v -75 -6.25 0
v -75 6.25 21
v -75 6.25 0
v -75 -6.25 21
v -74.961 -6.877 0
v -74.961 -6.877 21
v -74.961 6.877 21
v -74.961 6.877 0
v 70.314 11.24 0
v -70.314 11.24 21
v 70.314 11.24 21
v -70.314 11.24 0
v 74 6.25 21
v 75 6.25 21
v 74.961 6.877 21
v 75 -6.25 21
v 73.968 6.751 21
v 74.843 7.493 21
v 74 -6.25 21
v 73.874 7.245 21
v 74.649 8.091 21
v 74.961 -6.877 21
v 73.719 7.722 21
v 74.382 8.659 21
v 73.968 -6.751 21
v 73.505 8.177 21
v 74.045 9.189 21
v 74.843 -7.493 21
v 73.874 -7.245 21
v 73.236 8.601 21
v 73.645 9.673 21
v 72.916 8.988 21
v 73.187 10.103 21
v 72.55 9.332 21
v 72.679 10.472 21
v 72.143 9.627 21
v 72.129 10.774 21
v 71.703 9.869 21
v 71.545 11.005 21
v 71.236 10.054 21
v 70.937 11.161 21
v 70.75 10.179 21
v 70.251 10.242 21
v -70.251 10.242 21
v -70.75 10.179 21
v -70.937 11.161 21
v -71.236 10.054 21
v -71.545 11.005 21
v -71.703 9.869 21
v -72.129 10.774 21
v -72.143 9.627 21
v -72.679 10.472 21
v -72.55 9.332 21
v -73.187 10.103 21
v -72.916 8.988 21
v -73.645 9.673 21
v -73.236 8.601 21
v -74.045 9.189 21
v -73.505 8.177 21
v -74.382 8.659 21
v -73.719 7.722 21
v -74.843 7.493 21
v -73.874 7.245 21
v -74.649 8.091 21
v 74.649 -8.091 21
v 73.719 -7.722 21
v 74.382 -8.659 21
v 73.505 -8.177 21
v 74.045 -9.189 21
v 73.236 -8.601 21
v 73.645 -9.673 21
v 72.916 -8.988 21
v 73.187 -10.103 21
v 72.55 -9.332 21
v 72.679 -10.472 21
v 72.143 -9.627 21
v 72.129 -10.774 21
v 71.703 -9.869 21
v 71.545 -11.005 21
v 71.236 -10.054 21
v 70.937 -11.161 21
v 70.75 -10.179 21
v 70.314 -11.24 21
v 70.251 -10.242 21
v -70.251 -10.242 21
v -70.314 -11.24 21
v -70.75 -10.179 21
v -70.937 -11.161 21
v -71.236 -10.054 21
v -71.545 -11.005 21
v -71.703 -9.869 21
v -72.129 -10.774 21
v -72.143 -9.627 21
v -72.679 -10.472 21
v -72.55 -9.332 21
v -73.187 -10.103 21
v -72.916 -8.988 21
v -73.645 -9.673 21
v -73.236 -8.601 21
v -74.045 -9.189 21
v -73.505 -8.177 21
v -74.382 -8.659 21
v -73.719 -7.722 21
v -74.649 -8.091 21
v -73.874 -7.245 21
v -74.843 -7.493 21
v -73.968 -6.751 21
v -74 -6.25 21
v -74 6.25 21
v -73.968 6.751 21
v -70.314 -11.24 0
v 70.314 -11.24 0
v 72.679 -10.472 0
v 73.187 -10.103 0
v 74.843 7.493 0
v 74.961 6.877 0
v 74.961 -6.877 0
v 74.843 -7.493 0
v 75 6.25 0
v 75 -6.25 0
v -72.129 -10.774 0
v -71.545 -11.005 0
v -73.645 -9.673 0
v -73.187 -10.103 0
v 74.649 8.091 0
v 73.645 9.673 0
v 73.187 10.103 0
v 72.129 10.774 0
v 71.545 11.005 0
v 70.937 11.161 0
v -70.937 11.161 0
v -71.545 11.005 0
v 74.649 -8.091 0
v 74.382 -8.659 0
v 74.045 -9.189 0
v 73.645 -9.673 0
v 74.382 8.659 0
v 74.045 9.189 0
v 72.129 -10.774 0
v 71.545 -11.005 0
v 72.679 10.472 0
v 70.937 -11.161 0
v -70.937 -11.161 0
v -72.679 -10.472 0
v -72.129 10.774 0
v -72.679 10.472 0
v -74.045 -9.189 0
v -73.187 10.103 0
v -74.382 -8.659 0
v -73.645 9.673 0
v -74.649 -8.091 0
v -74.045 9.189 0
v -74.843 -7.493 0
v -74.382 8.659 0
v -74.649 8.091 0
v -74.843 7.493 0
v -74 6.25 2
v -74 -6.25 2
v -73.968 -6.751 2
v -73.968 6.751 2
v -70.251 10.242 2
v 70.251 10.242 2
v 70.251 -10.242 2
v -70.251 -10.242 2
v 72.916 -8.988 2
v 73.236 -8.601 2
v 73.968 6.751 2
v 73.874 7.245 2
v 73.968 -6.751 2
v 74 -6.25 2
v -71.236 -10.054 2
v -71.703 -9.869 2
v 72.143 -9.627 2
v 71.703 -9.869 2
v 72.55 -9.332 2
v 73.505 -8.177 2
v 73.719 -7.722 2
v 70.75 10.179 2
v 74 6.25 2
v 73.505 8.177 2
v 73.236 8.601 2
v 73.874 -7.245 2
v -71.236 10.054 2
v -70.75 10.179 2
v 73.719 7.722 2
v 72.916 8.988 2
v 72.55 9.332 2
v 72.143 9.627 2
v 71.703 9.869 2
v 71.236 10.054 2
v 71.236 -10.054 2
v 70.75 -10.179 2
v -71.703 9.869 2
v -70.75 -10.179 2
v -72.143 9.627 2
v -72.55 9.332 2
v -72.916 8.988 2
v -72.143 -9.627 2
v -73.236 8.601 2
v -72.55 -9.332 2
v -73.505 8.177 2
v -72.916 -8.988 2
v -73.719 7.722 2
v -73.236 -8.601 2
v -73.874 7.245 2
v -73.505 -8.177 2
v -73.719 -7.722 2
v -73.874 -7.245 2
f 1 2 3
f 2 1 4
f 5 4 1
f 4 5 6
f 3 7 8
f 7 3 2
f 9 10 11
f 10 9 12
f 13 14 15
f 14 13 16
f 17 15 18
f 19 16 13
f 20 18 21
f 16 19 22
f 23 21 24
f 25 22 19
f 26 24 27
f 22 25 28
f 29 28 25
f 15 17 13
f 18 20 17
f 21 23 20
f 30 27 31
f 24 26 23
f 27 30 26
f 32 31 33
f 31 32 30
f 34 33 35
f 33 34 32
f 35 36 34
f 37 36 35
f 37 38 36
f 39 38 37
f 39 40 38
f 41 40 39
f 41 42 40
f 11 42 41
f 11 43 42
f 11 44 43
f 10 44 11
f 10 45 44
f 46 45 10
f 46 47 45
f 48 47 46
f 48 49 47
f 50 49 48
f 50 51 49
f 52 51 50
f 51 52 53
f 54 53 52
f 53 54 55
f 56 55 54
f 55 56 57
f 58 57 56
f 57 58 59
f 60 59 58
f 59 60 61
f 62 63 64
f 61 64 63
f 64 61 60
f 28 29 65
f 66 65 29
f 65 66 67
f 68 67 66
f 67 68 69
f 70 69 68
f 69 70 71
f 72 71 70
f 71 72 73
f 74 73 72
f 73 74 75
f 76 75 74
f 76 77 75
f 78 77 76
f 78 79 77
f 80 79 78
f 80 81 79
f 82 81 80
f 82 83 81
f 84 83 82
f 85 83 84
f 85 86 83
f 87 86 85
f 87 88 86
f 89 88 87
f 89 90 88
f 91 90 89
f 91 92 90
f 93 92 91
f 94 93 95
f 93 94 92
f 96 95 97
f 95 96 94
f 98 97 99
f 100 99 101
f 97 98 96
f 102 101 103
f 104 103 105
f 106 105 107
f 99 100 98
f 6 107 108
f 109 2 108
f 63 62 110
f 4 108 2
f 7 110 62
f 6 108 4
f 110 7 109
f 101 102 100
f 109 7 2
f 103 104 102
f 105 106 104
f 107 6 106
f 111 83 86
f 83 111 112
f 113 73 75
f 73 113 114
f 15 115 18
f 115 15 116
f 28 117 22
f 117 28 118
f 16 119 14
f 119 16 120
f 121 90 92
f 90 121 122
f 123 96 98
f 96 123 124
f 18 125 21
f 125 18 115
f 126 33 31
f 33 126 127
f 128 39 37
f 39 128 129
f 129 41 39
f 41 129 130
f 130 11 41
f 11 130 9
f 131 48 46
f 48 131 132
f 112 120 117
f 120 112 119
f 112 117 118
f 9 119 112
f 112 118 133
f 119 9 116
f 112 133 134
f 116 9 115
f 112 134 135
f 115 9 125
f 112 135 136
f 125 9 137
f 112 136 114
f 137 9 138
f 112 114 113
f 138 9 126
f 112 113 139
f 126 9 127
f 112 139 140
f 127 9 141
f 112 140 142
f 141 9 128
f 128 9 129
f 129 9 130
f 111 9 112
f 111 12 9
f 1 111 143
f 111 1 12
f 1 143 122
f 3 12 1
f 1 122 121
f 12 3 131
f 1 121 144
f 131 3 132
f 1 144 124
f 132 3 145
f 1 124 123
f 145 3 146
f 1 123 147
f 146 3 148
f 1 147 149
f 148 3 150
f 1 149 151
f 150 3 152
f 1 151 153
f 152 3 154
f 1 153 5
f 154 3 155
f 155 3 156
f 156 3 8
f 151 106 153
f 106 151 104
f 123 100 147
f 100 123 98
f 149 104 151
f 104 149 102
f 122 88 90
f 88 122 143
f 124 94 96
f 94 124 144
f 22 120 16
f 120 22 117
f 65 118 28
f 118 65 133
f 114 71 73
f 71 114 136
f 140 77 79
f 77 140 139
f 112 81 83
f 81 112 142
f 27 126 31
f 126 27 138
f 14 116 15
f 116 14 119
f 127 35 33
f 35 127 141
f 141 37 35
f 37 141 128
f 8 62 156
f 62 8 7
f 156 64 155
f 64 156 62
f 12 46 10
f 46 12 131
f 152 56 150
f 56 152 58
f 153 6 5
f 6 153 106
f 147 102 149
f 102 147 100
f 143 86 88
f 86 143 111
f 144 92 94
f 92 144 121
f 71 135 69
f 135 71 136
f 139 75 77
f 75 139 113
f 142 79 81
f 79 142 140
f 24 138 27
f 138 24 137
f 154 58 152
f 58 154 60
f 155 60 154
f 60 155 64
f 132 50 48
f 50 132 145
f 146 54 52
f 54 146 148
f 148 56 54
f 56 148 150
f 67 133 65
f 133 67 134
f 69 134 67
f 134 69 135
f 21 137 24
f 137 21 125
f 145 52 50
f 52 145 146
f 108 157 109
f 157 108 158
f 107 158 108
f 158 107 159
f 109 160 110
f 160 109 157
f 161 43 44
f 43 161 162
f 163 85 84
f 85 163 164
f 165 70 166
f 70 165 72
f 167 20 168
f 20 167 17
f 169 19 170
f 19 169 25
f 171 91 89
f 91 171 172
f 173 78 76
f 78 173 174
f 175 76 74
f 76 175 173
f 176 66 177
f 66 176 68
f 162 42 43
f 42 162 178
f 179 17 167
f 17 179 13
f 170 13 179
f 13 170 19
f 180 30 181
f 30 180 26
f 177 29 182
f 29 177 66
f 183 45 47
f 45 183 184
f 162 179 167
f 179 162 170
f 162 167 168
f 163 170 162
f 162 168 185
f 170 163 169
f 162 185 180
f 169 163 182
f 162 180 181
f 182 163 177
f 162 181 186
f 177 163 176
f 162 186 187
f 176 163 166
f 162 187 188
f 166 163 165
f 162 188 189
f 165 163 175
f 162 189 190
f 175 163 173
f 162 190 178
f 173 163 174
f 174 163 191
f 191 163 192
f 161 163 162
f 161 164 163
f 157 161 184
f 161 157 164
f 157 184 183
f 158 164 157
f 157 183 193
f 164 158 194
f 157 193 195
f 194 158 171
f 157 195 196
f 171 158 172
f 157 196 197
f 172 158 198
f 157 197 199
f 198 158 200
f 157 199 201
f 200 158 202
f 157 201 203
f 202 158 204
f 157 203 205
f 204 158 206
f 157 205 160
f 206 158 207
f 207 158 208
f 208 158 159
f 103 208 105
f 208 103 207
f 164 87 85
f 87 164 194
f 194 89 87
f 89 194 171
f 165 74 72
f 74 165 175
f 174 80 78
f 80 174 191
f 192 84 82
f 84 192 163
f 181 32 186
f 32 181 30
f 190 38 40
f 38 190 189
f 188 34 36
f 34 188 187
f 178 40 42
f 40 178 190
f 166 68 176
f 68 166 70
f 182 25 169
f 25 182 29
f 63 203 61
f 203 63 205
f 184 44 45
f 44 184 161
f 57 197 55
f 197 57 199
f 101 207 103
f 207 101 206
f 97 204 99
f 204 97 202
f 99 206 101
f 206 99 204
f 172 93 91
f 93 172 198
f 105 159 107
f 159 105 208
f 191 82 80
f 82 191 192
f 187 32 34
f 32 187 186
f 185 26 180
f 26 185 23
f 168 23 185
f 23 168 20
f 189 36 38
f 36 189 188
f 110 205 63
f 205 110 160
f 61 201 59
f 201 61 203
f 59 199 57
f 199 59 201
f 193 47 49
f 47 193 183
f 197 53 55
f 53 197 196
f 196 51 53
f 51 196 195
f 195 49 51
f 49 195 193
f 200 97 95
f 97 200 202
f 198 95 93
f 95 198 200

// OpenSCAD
$fn = 50;


difference() {
	union() {
		hull() {
			translate(v = [-70.0000000000, 6.2500000000, 0]) {
				cylinder(h = 21, r = 5);
			}
			translate(v = [70.0000000000, 6.2500000000, 0]) {
				cylinder(h = 21, r = 5);
			}
			translate(v = [-70.0000000000, -6.2500000000, 0]) {
				cylinder(h = 21, r = 5);
			}
			translate(v = [70.0000000000, -6.2500000000, 0]) {
				cylinder(h = 21, r = 5);
			}
		}
	}
	union() {
		translate(v = [0, 0, 2]) {
			hull() {
				translate(v = [-70.0000000000, 6.2500000000, 0]) {
					cylinder(h = 19, r = 4);
				}
				translate(v = [70.0000000000, 6.2500000000, 0]) {
					cylinder(h = 19, r = 4);
				}
				translate(v = [-70.0000000000, -6.2500000000, 0]) {
					cylinder(h = 19, r = 4);
				}
				translate(v = [70.0000000000, -6.2500000000, 0]) {
					cylinder(h = 19, r = 4);
				}
			}
		}
	}
}
